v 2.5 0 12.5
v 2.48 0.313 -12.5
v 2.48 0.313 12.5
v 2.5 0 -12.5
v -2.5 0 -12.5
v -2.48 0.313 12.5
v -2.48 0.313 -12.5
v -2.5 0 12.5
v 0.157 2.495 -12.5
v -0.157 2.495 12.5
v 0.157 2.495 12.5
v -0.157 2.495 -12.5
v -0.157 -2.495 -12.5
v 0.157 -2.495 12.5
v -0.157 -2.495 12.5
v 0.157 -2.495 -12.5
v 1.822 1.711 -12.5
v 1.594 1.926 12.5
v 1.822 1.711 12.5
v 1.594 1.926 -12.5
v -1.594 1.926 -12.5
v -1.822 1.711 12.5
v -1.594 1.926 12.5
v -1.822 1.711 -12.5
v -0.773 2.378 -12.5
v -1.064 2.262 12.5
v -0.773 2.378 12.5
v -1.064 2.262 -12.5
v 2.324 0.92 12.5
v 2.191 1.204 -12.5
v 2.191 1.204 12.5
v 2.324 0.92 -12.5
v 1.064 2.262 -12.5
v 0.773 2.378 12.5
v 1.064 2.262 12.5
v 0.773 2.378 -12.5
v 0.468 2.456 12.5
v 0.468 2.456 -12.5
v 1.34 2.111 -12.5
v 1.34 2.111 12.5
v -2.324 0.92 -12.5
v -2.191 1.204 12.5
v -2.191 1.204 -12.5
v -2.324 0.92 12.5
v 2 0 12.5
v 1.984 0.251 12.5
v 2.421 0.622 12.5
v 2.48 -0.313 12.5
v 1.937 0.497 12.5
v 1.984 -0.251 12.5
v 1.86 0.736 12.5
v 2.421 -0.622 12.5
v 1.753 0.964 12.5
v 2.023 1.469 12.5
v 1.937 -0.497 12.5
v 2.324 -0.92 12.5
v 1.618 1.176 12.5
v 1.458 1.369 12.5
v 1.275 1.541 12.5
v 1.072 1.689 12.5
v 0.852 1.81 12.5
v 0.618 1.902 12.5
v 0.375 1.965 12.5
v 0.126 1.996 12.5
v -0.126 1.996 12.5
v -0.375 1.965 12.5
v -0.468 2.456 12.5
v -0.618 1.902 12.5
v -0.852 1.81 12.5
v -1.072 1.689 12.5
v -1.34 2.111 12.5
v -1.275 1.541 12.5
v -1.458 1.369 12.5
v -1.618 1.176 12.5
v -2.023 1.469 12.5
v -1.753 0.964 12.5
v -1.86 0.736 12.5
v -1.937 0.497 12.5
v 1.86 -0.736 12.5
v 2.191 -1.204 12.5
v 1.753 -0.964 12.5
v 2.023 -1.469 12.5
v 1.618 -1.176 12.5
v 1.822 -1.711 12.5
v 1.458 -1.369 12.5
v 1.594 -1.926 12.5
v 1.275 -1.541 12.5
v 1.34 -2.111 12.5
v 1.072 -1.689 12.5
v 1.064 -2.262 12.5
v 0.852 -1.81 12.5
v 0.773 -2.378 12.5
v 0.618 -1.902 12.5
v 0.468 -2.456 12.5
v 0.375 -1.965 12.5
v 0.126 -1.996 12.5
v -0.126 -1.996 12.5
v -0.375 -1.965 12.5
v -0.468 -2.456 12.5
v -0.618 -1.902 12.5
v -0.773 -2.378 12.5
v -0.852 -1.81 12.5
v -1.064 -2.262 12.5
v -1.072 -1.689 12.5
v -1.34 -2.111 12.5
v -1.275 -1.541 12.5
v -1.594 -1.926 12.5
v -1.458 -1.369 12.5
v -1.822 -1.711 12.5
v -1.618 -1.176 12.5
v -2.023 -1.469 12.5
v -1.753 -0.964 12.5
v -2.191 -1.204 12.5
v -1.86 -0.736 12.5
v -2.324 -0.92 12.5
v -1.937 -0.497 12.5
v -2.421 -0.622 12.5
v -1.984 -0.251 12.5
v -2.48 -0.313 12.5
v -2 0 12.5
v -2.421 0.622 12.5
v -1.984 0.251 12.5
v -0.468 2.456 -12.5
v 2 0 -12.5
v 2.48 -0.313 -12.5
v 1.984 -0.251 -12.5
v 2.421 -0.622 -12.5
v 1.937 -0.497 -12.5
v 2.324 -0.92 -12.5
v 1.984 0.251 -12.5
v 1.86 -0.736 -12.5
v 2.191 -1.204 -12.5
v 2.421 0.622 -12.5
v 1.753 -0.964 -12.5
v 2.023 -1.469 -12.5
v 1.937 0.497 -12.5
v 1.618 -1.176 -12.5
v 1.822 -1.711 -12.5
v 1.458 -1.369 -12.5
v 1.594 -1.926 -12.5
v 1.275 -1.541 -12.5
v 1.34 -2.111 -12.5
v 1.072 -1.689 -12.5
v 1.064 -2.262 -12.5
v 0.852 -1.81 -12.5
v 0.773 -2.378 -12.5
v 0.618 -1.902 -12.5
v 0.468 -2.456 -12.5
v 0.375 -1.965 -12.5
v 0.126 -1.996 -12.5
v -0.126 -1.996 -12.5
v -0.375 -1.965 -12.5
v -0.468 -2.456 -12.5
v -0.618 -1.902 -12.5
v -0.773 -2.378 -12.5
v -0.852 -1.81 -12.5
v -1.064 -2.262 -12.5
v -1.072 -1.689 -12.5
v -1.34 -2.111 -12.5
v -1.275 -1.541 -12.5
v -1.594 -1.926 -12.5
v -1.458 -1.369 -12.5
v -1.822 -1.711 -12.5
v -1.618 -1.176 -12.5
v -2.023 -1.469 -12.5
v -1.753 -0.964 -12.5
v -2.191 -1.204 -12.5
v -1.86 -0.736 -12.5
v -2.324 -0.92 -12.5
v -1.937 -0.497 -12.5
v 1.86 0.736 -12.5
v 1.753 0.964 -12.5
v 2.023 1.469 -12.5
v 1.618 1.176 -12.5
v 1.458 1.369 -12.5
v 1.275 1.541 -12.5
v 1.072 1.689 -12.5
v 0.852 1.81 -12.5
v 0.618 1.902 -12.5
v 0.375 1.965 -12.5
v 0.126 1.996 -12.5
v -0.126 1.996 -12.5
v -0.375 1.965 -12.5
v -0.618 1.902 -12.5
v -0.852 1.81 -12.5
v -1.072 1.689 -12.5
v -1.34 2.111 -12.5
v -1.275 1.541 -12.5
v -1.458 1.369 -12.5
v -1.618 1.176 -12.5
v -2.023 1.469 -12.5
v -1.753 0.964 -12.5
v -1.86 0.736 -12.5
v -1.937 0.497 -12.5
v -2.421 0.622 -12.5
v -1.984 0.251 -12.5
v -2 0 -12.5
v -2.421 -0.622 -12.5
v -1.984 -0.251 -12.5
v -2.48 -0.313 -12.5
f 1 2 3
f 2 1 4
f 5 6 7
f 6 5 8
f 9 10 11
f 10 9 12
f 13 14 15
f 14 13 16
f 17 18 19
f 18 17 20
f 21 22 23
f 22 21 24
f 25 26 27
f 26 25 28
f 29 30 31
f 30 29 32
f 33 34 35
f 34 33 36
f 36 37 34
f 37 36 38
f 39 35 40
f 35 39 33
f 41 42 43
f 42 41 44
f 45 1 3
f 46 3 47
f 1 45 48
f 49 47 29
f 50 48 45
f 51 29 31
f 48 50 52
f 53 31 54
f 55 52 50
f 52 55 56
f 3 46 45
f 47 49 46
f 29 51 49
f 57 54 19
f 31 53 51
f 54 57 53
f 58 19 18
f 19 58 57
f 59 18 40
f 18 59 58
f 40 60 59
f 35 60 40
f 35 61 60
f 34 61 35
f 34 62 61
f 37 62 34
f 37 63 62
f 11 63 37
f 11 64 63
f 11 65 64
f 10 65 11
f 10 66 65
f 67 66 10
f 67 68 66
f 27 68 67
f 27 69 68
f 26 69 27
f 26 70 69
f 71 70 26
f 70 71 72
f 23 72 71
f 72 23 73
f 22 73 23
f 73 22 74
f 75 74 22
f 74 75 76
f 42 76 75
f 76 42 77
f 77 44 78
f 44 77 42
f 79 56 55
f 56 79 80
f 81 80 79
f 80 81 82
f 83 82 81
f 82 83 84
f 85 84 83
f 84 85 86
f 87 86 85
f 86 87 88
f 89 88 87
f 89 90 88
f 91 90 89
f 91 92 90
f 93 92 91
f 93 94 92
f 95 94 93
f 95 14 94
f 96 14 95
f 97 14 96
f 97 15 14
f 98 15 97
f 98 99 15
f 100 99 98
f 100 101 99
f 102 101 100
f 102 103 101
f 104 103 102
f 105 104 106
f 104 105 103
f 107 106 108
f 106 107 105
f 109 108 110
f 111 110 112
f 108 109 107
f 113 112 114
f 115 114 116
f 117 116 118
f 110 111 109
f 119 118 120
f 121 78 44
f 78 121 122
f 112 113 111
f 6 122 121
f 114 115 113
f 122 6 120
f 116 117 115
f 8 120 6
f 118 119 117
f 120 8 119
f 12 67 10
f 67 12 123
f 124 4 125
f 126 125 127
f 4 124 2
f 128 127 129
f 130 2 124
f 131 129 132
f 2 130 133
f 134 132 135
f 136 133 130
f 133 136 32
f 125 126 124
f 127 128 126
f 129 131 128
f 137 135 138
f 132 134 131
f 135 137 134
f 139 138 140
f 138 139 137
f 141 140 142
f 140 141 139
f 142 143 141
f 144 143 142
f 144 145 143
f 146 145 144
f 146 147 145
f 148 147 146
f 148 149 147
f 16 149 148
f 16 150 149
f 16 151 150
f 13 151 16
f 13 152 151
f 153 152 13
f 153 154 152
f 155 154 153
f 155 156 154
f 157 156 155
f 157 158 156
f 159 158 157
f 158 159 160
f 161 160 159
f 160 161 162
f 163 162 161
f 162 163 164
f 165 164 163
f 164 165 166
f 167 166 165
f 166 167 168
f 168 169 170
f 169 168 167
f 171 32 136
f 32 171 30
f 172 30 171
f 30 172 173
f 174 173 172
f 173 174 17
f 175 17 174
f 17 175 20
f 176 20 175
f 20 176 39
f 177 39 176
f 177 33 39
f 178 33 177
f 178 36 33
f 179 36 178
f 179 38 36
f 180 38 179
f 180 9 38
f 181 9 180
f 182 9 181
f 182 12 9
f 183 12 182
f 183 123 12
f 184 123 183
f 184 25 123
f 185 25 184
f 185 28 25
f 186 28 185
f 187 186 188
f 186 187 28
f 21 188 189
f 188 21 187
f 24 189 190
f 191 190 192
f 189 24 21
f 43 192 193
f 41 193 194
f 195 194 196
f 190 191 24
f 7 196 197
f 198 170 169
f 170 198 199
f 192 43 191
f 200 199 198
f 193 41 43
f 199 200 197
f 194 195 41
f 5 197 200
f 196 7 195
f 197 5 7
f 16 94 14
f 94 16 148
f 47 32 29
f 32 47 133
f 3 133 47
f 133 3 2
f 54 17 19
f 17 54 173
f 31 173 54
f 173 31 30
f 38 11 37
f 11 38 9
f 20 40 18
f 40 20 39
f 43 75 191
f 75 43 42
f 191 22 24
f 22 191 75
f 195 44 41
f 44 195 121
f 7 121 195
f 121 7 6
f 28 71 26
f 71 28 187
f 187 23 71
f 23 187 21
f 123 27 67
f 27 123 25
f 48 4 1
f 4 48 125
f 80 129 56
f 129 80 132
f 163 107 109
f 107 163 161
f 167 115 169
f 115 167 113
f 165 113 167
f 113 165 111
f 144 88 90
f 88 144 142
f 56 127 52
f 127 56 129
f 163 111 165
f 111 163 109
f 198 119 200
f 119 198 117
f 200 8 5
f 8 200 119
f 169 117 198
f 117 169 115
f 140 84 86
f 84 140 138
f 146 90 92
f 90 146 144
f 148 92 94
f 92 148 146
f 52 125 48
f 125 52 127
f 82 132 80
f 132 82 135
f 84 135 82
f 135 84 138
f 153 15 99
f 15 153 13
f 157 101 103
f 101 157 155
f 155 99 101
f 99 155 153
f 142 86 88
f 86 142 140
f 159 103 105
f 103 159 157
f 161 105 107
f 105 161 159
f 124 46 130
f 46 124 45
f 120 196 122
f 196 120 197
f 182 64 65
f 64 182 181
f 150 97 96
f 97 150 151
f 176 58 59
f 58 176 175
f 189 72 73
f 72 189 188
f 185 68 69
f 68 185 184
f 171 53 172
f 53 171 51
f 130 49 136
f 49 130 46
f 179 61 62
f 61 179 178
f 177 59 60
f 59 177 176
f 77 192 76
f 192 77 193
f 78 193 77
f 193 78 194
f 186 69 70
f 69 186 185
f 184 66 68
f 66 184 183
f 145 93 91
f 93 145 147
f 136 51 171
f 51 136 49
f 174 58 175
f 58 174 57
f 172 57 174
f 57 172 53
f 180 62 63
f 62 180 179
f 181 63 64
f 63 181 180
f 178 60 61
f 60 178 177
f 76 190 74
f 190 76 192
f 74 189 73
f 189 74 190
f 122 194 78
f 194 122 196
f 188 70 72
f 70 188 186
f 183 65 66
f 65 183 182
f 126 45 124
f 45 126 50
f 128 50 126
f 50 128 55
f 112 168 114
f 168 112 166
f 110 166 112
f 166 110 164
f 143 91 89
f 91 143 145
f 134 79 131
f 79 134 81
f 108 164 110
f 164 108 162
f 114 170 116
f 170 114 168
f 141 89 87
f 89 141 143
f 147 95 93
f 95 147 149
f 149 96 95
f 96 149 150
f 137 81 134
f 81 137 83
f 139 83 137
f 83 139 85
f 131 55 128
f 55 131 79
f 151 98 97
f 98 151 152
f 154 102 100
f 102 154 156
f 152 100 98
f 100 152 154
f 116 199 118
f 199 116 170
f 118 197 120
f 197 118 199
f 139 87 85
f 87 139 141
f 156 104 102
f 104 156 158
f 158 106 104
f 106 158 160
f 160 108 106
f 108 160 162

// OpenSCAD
$fn = 50;


difference() {
	union() {
		translate(v = [0, 0, -12.5000000000]) {
			cylinder(h = 25, r = 2.5000000000);
		}
	}
	union() {
		translate(v = [0, 0, -100.0000000000]) {
			cylinder(h = 200, r = 2);
		}
	}
}
